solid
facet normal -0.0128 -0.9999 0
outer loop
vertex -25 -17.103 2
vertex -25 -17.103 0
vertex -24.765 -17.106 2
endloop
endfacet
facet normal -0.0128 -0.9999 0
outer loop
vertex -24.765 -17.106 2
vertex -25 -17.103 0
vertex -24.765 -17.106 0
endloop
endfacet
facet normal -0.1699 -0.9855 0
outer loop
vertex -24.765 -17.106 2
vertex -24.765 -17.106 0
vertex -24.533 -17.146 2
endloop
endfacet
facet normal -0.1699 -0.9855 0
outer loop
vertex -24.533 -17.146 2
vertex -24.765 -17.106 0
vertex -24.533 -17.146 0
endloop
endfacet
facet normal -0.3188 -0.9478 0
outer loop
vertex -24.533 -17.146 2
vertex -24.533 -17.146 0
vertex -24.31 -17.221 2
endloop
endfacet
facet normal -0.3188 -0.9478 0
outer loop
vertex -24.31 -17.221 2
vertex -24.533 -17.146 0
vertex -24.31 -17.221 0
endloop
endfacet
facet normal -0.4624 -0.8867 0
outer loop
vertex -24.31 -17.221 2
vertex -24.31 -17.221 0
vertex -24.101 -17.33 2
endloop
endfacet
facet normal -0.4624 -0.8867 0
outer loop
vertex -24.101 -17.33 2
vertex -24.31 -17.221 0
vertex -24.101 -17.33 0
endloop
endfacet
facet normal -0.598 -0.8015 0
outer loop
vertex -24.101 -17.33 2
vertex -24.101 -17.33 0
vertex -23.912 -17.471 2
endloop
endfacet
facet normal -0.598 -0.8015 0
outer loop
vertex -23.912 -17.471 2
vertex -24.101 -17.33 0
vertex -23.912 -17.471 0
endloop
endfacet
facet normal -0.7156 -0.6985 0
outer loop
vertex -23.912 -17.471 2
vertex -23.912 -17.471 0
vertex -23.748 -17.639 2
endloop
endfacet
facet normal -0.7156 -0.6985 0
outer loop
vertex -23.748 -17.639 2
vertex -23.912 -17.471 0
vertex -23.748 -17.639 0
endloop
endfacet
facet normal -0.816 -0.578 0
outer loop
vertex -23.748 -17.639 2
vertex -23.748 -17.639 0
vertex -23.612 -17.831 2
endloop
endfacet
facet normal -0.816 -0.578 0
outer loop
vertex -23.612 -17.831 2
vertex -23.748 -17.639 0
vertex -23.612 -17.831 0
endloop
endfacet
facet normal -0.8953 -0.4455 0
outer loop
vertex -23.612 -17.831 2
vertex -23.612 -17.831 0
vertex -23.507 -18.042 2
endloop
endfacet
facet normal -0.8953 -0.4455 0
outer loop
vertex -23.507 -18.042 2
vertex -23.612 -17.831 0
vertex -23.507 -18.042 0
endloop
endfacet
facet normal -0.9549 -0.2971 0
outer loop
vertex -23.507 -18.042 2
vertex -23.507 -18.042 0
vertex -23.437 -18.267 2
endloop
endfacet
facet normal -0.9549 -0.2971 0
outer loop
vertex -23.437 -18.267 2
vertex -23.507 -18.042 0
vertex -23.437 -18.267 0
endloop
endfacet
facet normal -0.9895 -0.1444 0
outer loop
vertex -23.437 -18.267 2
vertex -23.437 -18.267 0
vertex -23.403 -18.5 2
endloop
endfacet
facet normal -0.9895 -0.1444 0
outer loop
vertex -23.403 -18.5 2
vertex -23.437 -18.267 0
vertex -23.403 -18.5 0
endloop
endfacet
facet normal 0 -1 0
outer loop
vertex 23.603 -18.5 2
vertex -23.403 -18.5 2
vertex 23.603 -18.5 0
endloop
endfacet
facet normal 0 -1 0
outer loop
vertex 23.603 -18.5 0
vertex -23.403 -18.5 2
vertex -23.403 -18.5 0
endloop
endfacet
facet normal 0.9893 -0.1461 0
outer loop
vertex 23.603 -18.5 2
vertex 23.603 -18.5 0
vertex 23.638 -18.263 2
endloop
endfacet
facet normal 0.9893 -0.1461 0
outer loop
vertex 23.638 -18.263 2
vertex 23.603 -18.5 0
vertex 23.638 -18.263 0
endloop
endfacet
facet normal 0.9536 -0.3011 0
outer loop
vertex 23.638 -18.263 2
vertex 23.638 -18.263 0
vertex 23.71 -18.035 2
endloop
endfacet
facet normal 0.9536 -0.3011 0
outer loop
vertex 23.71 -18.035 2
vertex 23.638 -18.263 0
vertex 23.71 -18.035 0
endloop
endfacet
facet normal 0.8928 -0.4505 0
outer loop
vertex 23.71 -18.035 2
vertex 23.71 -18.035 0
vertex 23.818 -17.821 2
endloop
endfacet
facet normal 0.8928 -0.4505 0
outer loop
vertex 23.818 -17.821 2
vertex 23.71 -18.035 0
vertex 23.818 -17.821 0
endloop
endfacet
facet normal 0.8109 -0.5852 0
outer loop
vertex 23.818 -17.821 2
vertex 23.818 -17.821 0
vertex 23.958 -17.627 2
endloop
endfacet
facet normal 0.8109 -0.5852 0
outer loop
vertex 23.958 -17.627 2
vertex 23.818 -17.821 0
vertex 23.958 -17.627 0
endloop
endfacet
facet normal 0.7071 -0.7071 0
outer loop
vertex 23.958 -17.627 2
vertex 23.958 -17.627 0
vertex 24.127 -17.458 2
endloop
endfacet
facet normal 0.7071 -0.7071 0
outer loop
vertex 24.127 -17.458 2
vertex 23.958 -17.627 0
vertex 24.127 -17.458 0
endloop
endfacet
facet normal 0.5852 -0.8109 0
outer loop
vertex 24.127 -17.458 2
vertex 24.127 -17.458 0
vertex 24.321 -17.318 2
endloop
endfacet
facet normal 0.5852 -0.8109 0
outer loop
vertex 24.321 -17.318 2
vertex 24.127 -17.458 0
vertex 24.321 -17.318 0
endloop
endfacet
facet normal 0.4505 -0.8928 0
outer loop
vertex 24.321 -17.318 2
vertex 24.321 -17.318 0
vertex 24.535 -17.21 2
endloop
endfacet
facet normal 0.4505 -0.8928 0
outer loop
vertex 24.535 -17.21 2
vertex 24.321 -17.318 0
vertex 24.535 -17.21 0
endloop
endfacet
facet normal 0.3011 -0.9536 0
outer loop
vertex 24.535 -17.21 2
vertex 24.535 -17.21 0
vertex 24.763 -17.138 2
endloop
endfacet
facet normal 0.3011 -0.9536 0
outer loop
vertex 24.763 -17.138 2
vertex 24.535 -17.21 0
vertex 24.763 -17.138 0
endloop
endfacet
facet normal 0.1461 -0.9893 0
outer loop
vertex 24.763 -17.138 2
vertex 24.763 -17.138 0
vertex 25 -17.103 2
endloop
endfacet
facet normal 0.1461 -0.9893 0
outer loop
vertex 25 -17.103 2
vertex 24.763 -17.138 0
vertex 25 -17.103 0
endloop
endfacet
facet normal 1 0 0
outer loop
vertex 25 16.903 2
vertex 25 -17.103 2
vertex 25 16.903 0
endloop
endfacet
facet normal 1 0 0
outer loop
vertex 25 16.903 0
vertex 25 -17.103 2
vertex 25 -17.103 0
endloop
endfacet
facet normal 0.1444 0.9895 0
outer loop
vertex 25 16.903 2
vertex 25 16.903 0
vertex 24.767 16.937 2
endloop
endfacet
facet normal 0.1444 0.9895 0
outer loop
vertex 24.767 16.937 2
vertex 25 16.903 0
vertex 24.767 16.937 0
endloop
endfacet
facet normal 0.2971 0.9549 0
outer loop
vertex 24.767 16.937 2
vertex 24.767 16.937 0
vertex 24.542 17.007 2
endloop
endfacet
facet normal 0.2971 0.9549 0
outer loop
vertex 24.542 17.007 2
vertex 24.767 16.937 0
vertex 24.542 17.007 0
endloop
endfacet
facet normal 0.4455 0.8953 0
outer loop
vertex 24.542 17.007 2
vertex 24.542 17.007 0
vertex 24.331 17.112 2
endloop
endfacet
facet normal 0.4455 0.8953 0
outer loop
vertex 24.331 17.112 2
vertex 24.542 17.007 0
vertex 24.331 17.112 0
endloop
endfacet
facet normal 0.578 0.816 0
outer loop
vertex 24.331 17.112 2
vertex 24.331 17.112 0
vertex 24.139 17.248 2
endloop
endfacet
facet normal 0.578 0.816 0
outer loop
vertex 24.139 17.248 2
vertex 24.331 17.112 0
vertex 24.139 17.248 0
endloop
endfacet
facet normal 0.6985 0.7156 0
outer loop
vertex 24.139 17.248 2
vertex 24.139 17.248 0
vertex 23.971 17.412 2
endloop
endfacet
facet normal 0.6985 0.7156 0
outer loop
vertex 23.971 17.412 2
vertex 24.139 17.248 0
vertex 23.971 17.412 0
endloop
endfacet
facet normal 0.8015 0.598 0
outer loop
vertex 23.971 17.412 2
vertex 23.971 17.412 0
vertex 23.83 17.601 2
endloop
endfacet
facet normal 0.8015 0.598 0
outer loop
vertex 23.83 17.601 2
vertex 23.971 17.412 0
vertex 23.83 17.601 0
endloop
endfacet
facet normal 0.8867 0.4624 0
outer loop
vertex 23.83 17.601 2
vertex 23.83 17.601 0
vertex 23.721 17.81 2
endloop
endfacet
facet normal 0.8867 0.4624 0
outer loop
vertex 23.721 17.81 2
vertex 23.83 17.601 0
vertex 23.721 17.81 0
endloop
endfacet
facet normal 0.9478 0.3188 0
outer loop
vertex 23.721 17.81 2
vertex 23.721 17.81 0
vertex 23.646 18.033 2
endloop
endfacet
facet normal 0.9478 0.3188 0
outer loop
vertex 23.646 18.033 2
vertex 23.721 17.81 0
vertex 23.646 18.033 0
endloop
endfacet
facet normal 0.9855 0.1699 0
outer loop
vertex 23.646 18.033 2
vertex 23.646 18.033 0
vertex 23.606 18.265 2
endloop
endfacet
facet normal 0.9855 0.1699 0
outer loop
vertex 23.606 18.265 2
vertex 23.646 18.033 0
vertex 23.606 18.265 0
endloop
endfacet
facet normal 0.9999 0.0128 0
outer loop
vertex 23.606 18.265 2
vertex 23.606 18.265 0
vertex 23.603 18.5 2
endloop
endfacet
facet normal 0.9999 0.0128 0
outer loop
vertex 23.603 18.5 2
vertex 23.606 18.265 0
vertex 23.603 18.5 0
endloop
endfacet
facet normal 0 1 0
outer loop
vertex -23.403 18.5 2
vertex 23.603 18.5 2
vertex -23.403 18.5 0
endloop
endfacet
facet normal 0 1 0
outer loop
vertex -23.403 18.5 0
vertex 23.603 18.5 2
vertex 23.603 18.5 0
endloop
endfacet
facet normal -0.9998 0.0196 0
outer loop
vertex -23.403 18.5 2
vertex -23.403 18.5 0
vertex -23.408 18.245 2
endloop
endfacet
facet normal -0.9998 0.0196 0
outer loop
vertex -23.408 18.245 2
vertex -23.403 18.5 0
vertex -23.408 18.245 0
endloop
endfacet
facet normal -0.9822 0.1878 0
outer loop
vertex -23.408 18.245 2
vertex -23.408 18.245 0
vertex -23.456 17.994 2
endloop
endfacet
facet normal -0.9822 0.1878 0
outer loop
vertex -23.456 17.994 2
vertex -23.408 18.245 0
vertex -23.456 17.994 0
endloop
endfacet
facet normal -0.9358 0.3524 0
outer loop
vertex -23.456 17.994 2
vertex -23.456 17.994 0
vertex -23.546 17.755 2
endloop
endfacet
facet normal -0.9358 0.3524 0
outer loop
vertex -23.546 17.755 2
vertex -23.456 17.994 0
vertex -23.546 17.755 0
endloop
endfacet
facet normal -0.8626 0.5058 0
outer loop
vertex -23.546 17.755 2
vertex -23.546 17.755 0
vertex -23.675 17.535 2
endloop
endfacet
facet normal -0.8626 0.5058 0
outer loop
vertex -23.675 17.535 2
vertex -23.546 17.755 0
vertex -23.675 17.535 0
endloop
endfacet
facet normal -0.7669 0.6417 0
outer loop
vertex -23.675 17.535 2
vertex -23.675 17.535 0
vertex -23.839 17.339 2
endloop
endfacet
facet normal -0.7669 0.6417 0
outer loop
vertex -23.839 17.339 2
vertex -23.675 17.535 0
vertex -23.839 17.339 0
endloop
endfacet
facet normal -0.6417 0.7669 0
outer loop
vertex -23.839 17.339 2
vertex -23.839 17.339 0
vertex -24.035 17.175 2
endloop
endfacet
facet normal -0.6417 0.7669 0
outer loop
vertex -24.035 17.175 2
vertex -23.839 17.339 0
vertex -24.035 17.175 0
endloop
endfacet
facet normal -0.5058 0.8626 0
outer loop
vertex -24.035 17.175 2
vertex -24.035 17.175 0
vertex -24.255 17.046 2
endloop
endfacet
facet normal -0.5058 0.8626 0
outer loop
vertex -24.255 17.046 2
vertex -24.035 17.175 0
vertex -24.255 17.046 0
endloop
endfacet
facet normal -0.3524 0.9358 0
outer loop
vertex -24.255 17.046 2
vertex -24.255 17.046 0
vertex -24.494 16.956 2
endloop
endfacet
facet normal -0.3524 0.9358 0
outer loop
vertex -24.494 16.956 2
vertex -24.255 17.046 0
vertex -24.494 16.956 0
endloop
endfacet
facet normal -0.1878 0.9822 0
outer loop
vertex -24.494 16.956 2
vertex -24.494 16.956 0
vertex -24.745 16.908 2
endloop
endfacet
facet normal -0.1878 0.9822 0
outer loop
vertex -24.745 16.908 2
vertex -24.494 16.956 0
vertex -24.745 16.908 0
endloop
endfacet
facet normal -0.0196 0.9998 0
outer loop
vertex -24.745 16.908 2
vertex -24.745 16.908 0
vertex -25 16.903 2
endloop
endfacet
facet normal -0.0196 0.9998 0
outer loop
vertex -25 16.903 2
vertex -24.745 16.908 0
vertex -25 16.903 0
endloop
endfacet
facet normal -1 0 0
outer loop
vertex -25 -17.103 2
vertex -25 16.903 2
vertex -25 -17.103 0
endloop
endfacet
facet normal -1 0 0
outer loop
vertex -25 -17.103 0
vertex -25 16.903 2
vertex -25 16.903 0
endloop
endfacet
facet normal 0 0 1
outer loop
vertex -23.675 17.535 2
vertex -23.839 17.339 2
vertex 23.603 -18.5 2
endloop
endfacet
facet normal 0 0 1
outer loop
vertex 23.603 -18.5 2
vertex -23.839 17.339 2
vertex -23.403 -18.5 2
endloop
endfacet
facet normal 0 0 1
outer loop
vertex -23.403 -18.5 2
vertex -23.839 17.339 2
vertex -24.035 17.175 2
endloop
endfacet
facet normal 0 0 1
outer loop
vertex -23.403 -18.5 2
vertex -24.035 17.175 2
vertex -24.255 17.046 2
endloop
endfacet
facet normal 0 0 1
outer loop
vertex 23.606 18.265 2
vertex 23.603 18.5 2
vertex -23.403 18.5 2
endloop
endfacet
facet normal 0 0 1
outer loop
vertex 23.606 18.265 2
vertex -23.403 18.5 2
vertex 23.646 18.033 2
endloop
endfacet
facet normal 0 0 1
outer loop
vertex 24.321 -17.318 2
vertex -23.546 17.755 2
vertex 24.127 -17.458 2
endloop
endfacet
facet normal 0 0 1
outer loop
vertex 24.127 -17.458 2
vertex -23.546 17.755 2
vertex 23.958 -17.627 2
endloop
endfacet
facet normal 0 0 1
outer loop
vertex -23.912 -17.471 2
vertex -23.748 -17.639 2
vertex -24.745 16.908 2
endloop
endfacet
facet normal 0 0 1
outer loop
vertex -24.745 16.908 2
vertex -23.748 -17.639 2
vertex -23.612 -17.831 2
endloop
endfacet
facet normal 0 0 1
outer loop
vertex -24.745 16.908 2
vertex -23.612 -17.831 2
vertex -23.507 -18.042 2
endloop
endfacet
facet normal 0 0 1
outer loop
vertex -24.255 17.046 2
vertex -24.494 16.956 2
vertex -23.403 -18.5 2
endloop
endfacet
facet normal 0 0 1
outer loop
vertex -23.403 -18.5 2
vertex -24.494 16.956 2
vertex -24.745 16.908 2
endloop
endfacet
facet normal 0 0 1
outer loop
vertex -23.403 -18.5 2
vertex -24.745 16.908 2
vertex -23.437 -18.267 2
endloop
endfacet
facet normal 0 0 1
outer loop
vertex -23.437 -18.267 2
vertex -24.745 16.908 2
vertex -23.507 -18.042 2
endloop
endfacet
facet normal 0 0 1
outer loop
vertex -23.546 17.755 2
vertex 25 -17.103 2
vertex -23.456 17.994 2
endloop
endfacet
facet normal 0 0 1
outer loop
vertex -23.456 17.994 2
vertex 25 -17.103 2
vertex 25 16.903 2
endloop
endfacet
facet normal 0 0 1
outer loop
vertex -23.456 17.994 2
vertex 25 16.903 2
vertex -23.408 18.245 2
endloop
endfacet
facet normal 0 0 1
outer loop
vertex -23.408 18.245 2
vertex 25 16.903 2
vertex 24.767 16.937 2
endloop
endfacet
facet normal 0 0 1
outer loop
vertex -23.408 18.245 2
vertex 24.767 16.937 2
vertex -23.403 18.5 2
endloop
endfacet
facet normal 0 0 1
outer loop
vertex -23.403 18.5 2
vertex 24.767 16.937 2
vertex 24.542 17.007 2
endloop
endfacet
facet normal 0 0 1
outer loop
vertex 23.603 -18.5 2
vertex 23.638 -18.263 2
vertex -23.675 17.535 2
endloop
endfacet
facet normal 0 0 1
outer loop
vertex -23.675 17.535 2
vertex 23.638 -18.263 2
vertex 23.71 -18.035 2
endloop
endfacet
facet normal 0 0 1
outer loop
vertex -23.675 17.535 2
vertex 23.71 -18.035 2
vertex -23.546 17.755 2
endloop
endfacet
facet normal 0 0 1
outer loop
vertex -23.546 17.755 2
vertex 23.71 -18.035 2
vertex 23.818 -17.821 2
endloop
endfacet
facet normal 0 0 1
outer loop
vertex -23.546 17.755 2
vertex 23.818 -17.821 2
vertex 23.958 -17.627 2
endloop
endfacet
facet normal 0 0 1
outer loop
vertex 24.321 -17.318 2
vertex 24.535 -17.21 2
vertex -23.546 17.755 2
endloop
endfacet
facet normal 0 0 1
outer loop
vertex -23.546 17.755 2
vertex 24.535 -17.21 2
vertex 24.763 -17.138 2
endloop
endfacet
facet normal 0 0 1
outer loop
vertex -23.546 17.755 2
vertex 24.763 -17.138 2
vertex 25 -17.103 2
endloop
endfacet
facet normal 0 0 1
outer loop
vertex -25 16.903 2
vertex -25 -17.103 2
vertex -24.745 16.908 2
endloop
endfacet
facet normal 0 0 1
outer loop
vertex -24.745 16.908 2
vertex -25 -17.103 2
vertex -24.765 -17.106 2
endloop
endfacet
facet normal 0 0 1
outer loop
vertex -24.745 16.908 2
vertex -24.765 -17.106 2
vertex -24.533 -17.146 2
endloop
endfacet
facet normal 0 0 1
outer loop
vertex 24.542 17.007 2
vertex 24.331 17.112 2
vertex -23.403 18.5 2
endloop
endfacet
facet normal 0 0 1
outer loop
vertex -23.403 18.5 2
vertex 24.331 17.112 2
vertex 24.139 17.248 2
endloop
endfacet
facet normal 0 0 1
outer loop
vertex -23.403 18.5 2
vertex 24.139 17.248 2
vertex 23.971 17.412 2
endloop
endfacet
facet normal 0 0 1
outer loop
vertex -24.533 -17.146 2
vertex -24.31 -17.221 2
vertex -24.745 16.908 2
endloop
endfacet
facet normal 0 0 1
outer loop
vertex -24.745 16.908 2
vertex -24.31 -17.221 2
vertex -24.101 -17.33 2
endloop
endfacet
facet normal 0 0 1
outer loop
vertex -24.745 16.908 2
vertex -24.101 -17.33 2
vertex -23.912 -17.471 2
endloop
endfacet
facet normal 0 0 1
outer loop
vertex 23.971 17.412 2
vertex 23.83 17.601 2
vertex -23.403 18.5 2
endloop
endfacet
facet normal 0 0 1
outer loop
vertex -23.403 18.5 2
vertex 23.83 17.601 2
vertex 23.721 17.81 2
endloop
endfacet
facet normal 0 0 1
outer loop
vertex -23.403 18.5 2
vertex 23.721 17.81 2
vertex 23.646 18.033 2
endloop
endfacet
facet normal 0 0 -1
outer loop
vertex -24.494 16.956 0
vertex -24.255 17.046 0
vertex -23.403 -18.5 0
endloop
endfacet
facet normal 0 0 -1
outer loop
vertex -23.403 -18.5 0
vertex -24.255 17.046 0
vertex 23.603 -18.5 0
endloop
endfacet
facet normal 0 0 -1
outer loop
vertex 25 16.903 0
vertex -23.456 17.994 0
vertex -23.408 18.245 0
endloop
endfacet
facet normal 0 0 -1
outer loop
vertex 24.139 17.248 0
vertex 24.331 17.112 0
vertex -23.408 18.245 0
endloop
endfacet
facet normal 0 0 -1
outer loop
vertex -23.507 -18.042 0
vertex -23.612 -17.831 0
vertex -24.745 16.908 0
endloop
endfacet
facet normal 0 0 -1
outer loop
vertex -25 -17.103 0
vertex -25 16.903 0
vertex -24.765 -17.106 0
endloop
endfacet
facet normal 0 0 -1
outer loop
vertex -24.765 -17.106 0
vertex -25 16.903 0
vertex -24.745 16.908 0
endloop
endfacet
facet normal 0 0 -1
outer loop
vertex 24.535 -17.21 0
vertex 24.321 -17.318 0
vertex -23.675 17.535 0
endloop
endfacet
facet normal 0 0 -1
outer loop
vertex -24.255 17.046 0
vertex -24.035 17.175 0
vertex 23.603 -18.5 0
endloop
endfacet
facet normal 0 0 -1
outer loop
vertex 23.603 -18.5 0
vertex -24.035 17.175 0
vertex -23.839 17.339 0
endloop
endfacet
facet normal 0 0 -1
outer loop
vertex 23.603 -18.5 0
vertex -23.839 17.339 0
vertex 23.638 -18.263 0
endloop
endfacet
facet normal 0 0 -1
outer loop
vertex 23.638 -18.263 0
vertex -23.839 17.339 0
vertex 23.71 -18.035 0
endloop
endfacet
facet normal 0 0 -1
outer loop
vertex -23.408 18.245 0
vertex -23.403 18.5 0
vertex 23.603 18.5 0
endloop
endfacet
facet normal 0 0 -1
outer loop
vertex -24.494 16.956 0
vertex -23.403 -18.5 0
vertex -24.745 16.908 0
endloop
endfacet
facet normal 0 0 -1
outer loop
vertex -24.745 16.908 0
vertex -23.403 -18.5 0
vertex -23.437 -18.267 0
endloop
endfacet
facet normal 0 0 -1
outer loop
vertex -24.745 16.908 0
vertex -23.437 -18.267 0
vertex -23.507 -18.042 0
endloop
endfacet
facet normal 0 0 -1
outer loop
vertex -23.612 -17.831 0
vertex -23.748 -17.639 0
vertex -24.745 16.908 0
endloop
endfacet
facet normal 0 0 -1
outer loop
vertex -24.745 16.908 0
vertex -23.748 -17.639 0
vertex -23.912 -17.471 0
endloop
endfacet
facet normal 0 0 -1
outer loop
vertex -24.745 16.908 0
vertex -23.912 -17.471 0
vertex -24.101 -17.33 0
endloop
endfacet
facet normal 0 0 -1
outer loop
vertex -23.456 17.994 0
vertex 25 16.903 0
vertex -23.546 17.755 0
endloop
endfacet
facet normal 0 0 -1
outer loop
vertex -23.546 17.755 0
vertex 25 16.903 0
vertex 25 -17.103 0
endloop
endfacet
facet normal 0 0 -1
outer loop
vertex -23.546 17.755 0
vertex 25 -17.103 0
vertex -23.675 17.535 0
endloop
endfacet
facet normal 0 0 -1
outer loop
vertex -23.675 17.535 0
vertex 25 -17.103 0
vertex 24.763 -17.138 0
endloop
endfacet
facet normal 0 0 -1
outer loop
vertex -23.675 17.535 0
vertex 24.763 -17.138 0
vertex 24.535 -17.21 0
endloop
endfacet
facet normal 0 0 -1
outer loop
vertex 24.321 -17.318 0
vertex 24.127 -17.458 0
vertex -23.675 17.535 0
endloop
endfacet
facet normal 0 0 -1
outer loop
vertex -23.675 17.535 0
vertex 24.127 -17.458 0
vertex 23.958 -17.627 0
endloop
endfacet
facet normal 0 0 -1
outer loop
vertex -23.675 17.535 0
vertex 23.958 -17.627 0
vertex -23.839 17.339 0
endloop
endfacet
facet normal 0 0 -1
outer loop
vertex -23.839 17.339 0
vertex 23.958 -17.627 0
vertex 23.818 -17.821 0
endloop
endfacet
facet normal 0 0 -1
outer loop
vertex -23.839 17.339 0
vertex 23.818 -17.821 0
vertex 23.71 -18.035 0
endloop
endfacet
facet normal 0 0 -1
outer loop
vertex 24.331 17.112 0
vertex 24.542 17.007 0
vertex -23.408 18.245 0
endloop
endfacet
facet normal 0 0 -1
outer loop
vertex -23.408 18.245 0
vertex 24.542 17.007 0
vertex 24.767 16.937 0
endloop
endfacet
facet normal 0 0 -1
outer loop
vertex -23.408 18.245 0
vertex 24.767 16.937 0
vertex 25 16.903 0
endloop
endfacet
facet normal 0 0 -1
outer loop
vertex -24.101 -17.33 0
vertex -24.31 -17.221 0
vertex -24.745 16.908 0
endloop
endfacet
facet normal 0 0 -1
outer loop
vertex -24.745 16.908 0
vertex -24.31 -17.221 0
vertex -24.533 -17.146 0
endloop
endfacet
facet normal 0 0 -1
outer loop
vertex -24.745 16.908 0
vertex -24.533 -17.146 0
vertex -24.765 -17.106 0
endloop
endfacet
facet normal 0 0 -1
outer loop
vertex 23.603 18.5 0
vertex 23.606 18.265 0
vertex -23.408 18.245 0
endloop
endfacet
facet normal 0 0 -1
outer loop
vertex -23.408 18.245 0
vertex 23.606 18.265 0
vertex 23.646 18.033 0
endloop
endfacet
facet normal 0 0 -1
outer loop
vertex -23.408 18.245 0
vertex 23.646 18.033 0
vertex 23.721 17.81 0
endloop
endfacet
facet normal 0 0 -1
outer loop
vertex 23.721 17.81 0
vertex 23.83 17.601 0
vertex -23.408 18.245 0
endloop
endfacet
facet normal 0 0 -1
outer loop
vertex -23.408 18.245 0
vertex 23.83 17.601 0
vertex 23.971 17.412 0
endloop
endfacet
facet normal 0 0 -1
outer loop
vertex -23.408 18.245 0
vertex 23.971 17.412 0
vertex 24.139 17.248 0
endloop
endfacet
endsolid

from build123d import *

# Parameters (mm, degrees)
BOSS_EXTRUDE1_DEPTH = 2


with BuildPart() as part:
    # Sketch1 → Boss-Extrude1 (new body)
    with BuildSketch(Plane.XY):
        with BuildLine():
            Line((23.603337045, 18.5), (-23.403337045, 18.5))
            ThreePointArc((-23.403337045, 18.5), (-23.400834493, 18.450027832), (-23.4, 18.4))
            ThreePointArc((-23.4, 18.4), (-23.875304923, 17.304554885), (-25, 16.903337045))
            Line((-25, 16.903337045), (-25, -17.103337045))
            ThreePointArc((-25, -17.103337045), (-23.912410154, -17.470988797), (-23.403337045, -18.5))
            Line((-23.403337045, -18.5), (23.603337045, -18.5))
            ThreePointArc((23.603337045, -18.5), (24.039339828, -17.539339828), (25, -17.103337045))
            Line((25, -17.103337045), (25, 16.903337045))
            ThreePointArc((25, 16.903337045), (23.970988797, 17.412410154), (23.603337045, 18.5))
        make_face()
    extrude(amount=BOSS_EXTRUDE1_DEPTH)


solid = part.part
